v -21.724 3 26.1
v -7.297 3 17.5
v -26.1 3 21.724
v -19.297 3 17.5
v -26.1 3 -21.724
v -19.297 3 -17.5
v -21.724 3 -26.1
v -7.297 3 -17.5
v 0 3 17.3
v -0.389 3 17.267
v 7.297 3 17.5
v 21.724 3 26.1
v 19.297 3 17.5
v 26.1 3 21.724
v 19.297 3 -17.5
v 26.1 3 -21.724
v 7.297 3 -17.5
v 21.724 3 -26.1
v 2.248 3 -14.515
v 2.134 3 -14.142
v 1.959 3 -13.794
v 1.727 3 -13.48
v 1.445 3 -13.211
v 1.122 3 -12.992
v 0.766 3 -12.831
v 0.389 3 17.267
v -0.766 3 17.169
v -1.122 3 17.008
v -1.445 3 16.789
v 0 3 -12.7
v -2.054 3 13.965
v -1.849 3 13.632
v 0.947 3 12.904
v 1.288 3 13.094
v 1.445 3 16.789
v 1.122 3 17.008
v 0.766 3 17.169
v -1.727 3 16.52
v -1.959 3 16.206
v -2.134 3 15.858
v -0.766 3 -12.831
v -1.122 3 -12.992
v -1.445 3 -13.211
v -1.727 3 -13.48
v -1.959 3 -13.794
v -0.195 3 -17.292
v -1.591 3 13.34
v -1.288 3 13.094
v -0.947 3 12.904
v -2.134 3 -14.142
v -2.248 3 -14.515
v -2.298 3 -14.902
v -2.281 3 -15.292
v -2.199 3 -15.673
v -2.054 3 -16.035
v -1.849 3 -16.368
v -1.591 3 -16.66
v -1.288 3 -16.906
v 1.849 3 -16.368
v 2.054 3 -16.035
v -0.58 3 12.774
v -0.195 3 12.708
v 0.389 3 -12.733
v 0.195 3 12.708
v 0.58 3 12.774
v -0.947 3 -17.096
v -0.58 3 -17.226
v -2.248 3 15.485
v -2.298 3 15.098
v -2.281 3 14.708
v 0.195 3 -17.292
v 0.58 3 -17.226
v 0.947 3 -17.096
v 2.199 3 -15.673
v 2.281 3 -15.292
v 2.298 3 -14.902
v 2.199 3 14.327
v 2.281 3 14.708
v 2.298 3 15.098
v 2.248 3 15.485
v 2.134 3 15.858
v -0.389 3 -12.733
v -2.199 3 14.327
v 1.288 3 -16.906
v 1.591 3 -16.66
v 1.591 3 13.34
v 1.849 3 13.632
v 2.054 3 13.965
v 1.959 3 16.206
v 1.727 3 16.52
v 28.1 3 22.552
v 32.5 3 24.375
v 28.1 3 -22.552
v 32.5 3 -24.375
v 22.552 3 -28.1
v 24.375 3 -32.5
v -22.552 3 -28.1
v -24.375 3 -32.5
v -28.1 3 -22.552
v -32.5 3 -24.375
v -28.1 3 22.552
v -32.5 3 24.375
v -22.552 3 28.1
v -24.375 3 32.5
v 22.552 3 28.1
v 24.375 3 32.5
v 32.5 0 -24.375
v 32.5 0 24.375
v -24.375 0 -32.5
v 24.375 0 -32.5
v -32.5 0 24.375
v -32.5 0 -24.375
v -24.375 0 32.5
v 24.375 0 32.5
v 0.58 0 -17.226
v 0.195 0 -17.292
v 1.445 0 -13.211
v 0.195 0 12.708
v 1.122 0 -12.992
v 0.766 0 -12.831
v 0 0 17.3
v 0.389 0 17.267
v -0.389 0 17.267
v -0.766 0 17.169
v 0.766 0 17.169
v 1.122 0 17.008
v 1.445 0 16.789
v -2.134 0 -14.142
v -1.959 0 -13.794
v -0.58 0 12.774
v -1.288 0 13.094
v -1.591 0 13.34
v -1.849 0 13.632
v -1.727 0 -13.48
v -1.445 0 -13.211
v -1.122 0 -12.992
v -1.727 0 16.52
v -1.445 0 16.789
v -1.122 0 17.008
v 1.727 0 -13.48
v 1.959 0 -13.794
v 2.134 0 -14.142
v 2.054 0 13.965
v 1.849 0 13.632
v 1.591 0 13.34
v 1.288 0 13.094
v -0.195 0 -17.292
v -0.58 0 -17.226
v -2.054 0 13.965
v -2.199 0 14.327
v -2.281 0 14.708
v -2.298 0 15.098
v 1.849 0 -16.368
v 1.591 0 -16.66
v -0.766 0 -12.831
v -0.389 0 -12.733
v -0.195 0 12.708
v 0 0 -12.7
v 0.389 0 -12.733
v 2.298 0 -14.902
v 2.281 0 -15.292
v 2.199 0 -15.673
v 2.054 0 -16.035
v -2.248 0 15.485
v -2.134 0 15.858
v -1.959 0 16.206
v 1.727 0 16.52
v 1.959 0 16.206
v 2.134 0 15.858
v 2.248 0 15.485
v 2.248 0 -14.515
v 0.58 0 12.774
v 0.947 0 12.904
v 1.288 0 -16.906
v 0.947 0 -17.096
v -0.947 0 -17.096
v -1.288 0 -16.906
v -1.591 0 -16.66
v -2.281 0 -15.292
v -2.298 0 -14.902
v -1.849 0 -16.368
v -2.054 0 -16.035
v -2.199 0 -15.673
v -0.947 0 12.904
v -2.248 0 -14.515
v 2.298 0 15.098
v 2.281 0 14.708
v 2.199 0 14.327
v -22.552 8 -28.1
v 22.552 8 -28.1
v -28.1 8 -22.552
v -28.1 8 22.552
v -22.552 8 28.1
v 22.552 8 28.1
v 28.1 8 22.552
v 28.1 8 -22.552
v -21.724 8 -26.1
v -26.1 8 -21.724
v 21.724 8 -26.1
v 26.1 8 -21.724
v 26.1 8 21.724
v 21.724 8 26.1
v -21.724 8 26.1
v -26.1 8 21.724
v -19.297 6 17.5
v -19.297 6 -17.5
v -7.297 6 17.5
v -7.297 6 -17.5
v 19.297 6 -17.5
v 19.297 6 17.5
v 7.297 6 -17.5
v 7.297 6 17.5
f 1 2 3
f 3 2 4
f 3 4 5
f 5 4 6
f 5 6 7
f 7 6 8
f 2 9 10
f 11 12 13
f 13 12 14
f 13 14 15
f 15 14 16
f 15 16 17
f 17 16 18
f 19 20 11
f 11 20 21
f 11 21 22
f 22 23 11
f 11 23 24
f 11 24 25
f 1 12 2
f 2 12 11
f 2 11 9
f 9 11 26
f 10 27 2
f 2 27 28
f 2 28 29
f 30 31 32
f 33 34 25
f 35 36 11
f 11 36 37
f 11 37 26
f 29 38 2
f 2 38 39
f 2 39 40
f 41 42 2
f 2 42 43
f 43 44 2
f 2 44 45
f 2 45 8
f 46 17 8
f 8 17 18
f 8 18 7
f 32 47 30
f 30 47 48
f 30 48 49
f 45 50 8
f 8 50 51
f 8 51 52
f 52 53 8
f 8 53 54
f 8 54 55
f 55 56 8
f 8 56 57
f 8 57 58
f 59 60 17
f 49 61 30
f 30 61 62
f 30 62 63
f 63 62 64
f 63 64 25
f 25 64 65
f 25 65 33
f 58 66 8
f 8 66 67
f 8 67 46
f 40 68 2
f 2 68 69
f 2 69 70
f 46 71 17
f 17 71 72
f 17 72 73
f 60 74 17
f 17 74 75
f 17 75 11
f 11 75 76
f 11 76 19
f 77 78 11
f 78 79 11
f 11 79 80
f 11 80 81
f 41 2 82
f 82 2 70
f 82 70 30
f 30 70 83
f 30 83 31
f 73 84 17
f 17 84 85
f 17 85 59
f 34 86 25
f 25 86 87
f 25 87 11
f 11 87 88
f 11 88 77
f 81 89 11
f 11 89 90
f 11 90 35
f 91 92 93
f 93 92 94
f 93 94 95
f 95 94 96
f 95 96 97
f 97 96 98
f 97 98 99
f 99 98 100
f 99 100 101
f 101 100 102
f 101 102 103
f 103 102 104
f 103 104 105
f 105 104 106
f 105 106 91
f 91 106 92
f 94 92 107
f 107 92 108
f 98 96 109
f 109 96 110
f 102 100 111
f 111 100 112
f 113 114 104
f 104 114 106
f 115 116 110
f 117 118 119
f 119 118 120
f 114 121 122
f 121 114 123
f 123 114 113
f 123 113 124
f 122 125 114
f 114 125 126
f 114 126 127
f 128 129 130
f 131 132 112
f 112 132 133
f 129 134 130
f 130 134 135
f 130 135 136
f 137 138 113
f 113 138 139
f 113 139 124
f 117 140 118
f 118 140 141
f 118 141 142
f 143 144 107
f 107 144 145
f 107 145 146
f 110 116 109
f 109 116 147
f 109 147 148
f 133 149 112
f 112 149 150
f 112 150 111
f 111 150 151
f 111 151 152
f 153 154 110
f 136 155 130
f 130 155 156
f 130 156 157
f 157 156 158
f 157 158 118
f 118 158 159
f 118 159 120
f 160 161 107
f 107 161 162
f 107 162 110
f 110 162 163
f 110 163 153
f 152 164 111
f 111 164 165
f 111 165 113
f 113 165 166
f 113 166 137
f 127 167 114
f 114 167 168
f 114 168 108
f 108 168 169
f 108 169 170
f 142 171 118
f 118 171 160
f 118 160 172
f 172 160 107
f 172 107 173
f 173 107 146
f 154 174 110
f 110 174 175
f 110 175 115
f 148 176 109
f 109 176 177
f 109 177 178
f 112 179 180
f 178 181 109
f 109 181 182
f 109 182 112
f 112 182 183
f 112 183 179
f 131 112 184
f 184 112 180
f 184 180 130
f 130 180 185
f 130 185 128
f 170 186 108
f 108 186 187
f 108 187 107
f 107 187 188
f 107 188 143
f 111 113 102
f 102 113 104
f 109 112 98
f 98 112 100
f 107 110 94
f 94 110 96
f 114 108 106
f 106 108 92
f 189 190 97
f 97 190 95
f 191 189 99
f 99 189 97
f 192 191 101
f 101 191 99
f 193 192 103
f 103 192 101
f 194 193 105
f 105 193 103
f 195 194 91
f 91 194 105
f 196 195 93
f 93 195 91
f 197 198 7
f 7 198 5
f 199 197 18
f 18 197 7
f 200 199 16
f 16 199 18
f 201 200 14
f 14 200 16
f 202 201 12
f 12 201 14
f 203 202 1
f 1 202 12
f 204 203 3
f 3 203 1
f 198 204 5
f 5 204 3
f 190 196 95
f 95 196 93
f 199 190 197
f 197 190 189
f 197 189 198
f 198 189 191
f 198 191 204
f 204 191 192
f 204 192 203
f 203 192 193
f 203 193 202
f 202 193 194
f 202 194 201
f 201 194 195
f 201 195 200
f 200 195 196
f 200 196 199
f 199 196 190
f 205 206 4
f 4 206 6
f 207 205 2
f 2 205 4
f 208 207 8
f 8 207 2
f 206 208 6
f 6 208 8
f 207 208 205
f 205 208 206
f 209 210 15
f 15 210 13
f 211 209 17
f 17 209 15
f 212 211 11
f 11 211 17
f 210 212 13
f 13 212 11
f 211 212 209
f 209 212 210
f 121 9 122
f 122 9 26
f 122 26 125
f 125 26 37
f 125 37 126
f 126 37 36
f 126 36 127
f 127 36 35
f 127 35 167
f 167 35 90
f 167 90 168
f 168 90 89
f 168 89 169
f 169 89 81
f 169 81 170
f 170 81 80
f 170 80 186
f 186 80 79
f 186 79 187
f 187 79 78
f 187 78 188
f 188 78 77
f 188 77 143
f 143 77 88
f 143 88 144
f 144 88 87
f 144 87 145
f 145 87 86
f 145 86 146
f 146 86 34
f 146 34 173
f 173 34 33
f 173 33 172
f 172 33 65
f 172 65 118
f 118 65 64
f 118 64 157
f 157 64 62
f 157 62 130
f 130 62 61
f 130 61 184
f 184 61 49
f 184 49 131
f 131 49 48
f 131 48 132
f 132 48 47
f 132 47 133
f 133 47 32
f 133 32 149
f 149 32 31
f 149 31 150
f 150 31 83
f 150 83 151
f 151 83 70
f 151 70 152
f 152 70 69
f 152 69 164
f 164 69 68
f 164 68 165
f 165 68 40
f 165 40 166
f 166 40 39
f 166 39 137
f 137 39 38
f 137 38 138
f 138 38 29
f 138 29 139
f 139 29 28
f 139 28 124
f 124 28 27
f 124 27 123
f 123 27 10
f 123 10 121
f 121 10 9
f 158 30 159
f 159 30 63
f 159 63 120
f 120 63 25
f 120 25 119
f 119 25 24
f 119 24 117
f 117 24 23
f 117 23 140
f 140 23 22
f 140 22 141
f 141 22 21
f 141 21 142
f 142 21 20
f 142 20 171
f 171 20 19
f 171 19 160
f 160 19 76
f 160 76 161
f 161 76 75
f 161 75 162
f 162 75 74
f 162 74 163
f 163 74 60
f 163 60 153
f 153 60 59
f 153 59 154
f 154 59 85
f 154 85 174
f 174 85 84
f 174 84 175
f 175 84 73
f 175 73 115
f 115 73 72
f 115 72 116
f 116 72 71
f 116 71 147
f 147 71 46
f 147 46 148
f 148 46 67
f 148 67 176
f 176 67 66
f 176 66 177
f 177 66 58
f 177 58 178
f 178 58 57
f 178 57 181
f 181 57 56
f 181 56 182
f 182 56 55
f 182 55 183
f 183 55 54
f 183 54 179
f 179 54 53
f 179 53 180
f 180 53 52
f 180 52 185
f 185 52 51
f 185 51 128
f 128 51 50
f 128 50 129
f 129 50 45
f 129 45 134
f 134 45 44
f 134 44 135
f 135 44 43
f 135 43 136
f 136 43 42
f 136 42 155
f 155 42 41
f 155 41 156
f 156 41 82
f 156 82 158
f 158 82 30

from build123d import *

# Parameters (mm, degrees)
SKETCH1_W      = 65
SKETCH1_H      = 65
EXTRUDE1_DEPTH = 3
CHAMFER1_SIZE  = 8.125
EXTRUDE2_DEPTH = 5
SKETCH3_W      = 12
SKETCH3_H      = 35
EXTRUDE3_DEPTH = 3
SKETCH4_R      = 2.3
EXTRUDE4_DEPTH = 3


with BuildPart() as part:
    # Sketch1 → Extrude1 (new body)
    with BuildSketch(Plane(origin=(0, 0, 0), x_dir=(1, 0, 0), z_dir=(0, 1, 0))):
        Rectangle(SKETCH1_W, SKETCH1_H)
    extrude(amount=EXTRUDE1_DEPTH)

    # Chamfer1
    chamfer1_edges = [part.edges().sort_by_distance(p)[0] for p in [
        (32.5, 1.5, 32.5),
        (-32.5, 1.5, 32.5),
        (-32.5, 1.5, -32.5),
        (32.5, 1.5, -32.5),
    ]]
    chamfer(chamfer1_edges, length=CHAMFER1_SIZE)

    # Sketch2 → Extrude2 (add)
    with BuildSketch(Plane(origin=(0, 3, 0), x_dir=(1, 0, 0), z_dir=(0, 1, 0))):
        Polygon((22.552460326, 28.1), (-22.552460326, 28.1), (-28.1, 22.552460326), (-28.1, -22.552460326), (-22.552460326, -28.1), (22.552460326, -28.1), (28.1, -22.552460326), (28.1, 22.552460326), align=None)
        Polygon((-21.724033201, 26.1), (-26.1, 21.724033201), (-26.1, -11.272604381), (-26.1, -21.724033201), (-21.724033201, -26.1), (21.724033201, -26.1), (26.1, -21.724033201), (26.1, 21.724033201), (21.724033201, 26.1), align=None, mode=Mode.SUBTRACT)
    extrude(amount=EXTRUDE2_DEPTH)

    # Sketch3 → Extrude3 (add)
    with BuildSketch(Plane(origin=(0, 3, 0), x_dir=(1, 0, 0), z_dir=(0, 1, 0))):
        with Locations((-13.296722284, 0)):
            Rectangle(SKETCH3_W, SKETCH3_H)
    extrude3 = extrude(amount=EXTRUDE3_DEPTH)

    # Mirror1: Extrude3 across plane
    add(extrude3.mirror(Plane(origin=(0, 0, 0), x_dir=(0, 0, 1), z_dir=(1, 0, 0))))

    # Sketch4 → Extrude4 (cut)
    with BuildSketch(Plane(origin=(0, 3, 0), x_dir=(1, 0, 0), z_dir=(0, 1, 0))):
        with Locations(Location((0, 15, 0), (0, 0, 270))):
            Circle(SKETCH4_R)
        with Locations(Location((0, -15, 0), (0, 0, 270))):
            Circle(SKETCH4_R)
    extrude(amount=-EXTRUDE4_DEPTH, mode=Mode.SUBTRACT)


solid = part.part
